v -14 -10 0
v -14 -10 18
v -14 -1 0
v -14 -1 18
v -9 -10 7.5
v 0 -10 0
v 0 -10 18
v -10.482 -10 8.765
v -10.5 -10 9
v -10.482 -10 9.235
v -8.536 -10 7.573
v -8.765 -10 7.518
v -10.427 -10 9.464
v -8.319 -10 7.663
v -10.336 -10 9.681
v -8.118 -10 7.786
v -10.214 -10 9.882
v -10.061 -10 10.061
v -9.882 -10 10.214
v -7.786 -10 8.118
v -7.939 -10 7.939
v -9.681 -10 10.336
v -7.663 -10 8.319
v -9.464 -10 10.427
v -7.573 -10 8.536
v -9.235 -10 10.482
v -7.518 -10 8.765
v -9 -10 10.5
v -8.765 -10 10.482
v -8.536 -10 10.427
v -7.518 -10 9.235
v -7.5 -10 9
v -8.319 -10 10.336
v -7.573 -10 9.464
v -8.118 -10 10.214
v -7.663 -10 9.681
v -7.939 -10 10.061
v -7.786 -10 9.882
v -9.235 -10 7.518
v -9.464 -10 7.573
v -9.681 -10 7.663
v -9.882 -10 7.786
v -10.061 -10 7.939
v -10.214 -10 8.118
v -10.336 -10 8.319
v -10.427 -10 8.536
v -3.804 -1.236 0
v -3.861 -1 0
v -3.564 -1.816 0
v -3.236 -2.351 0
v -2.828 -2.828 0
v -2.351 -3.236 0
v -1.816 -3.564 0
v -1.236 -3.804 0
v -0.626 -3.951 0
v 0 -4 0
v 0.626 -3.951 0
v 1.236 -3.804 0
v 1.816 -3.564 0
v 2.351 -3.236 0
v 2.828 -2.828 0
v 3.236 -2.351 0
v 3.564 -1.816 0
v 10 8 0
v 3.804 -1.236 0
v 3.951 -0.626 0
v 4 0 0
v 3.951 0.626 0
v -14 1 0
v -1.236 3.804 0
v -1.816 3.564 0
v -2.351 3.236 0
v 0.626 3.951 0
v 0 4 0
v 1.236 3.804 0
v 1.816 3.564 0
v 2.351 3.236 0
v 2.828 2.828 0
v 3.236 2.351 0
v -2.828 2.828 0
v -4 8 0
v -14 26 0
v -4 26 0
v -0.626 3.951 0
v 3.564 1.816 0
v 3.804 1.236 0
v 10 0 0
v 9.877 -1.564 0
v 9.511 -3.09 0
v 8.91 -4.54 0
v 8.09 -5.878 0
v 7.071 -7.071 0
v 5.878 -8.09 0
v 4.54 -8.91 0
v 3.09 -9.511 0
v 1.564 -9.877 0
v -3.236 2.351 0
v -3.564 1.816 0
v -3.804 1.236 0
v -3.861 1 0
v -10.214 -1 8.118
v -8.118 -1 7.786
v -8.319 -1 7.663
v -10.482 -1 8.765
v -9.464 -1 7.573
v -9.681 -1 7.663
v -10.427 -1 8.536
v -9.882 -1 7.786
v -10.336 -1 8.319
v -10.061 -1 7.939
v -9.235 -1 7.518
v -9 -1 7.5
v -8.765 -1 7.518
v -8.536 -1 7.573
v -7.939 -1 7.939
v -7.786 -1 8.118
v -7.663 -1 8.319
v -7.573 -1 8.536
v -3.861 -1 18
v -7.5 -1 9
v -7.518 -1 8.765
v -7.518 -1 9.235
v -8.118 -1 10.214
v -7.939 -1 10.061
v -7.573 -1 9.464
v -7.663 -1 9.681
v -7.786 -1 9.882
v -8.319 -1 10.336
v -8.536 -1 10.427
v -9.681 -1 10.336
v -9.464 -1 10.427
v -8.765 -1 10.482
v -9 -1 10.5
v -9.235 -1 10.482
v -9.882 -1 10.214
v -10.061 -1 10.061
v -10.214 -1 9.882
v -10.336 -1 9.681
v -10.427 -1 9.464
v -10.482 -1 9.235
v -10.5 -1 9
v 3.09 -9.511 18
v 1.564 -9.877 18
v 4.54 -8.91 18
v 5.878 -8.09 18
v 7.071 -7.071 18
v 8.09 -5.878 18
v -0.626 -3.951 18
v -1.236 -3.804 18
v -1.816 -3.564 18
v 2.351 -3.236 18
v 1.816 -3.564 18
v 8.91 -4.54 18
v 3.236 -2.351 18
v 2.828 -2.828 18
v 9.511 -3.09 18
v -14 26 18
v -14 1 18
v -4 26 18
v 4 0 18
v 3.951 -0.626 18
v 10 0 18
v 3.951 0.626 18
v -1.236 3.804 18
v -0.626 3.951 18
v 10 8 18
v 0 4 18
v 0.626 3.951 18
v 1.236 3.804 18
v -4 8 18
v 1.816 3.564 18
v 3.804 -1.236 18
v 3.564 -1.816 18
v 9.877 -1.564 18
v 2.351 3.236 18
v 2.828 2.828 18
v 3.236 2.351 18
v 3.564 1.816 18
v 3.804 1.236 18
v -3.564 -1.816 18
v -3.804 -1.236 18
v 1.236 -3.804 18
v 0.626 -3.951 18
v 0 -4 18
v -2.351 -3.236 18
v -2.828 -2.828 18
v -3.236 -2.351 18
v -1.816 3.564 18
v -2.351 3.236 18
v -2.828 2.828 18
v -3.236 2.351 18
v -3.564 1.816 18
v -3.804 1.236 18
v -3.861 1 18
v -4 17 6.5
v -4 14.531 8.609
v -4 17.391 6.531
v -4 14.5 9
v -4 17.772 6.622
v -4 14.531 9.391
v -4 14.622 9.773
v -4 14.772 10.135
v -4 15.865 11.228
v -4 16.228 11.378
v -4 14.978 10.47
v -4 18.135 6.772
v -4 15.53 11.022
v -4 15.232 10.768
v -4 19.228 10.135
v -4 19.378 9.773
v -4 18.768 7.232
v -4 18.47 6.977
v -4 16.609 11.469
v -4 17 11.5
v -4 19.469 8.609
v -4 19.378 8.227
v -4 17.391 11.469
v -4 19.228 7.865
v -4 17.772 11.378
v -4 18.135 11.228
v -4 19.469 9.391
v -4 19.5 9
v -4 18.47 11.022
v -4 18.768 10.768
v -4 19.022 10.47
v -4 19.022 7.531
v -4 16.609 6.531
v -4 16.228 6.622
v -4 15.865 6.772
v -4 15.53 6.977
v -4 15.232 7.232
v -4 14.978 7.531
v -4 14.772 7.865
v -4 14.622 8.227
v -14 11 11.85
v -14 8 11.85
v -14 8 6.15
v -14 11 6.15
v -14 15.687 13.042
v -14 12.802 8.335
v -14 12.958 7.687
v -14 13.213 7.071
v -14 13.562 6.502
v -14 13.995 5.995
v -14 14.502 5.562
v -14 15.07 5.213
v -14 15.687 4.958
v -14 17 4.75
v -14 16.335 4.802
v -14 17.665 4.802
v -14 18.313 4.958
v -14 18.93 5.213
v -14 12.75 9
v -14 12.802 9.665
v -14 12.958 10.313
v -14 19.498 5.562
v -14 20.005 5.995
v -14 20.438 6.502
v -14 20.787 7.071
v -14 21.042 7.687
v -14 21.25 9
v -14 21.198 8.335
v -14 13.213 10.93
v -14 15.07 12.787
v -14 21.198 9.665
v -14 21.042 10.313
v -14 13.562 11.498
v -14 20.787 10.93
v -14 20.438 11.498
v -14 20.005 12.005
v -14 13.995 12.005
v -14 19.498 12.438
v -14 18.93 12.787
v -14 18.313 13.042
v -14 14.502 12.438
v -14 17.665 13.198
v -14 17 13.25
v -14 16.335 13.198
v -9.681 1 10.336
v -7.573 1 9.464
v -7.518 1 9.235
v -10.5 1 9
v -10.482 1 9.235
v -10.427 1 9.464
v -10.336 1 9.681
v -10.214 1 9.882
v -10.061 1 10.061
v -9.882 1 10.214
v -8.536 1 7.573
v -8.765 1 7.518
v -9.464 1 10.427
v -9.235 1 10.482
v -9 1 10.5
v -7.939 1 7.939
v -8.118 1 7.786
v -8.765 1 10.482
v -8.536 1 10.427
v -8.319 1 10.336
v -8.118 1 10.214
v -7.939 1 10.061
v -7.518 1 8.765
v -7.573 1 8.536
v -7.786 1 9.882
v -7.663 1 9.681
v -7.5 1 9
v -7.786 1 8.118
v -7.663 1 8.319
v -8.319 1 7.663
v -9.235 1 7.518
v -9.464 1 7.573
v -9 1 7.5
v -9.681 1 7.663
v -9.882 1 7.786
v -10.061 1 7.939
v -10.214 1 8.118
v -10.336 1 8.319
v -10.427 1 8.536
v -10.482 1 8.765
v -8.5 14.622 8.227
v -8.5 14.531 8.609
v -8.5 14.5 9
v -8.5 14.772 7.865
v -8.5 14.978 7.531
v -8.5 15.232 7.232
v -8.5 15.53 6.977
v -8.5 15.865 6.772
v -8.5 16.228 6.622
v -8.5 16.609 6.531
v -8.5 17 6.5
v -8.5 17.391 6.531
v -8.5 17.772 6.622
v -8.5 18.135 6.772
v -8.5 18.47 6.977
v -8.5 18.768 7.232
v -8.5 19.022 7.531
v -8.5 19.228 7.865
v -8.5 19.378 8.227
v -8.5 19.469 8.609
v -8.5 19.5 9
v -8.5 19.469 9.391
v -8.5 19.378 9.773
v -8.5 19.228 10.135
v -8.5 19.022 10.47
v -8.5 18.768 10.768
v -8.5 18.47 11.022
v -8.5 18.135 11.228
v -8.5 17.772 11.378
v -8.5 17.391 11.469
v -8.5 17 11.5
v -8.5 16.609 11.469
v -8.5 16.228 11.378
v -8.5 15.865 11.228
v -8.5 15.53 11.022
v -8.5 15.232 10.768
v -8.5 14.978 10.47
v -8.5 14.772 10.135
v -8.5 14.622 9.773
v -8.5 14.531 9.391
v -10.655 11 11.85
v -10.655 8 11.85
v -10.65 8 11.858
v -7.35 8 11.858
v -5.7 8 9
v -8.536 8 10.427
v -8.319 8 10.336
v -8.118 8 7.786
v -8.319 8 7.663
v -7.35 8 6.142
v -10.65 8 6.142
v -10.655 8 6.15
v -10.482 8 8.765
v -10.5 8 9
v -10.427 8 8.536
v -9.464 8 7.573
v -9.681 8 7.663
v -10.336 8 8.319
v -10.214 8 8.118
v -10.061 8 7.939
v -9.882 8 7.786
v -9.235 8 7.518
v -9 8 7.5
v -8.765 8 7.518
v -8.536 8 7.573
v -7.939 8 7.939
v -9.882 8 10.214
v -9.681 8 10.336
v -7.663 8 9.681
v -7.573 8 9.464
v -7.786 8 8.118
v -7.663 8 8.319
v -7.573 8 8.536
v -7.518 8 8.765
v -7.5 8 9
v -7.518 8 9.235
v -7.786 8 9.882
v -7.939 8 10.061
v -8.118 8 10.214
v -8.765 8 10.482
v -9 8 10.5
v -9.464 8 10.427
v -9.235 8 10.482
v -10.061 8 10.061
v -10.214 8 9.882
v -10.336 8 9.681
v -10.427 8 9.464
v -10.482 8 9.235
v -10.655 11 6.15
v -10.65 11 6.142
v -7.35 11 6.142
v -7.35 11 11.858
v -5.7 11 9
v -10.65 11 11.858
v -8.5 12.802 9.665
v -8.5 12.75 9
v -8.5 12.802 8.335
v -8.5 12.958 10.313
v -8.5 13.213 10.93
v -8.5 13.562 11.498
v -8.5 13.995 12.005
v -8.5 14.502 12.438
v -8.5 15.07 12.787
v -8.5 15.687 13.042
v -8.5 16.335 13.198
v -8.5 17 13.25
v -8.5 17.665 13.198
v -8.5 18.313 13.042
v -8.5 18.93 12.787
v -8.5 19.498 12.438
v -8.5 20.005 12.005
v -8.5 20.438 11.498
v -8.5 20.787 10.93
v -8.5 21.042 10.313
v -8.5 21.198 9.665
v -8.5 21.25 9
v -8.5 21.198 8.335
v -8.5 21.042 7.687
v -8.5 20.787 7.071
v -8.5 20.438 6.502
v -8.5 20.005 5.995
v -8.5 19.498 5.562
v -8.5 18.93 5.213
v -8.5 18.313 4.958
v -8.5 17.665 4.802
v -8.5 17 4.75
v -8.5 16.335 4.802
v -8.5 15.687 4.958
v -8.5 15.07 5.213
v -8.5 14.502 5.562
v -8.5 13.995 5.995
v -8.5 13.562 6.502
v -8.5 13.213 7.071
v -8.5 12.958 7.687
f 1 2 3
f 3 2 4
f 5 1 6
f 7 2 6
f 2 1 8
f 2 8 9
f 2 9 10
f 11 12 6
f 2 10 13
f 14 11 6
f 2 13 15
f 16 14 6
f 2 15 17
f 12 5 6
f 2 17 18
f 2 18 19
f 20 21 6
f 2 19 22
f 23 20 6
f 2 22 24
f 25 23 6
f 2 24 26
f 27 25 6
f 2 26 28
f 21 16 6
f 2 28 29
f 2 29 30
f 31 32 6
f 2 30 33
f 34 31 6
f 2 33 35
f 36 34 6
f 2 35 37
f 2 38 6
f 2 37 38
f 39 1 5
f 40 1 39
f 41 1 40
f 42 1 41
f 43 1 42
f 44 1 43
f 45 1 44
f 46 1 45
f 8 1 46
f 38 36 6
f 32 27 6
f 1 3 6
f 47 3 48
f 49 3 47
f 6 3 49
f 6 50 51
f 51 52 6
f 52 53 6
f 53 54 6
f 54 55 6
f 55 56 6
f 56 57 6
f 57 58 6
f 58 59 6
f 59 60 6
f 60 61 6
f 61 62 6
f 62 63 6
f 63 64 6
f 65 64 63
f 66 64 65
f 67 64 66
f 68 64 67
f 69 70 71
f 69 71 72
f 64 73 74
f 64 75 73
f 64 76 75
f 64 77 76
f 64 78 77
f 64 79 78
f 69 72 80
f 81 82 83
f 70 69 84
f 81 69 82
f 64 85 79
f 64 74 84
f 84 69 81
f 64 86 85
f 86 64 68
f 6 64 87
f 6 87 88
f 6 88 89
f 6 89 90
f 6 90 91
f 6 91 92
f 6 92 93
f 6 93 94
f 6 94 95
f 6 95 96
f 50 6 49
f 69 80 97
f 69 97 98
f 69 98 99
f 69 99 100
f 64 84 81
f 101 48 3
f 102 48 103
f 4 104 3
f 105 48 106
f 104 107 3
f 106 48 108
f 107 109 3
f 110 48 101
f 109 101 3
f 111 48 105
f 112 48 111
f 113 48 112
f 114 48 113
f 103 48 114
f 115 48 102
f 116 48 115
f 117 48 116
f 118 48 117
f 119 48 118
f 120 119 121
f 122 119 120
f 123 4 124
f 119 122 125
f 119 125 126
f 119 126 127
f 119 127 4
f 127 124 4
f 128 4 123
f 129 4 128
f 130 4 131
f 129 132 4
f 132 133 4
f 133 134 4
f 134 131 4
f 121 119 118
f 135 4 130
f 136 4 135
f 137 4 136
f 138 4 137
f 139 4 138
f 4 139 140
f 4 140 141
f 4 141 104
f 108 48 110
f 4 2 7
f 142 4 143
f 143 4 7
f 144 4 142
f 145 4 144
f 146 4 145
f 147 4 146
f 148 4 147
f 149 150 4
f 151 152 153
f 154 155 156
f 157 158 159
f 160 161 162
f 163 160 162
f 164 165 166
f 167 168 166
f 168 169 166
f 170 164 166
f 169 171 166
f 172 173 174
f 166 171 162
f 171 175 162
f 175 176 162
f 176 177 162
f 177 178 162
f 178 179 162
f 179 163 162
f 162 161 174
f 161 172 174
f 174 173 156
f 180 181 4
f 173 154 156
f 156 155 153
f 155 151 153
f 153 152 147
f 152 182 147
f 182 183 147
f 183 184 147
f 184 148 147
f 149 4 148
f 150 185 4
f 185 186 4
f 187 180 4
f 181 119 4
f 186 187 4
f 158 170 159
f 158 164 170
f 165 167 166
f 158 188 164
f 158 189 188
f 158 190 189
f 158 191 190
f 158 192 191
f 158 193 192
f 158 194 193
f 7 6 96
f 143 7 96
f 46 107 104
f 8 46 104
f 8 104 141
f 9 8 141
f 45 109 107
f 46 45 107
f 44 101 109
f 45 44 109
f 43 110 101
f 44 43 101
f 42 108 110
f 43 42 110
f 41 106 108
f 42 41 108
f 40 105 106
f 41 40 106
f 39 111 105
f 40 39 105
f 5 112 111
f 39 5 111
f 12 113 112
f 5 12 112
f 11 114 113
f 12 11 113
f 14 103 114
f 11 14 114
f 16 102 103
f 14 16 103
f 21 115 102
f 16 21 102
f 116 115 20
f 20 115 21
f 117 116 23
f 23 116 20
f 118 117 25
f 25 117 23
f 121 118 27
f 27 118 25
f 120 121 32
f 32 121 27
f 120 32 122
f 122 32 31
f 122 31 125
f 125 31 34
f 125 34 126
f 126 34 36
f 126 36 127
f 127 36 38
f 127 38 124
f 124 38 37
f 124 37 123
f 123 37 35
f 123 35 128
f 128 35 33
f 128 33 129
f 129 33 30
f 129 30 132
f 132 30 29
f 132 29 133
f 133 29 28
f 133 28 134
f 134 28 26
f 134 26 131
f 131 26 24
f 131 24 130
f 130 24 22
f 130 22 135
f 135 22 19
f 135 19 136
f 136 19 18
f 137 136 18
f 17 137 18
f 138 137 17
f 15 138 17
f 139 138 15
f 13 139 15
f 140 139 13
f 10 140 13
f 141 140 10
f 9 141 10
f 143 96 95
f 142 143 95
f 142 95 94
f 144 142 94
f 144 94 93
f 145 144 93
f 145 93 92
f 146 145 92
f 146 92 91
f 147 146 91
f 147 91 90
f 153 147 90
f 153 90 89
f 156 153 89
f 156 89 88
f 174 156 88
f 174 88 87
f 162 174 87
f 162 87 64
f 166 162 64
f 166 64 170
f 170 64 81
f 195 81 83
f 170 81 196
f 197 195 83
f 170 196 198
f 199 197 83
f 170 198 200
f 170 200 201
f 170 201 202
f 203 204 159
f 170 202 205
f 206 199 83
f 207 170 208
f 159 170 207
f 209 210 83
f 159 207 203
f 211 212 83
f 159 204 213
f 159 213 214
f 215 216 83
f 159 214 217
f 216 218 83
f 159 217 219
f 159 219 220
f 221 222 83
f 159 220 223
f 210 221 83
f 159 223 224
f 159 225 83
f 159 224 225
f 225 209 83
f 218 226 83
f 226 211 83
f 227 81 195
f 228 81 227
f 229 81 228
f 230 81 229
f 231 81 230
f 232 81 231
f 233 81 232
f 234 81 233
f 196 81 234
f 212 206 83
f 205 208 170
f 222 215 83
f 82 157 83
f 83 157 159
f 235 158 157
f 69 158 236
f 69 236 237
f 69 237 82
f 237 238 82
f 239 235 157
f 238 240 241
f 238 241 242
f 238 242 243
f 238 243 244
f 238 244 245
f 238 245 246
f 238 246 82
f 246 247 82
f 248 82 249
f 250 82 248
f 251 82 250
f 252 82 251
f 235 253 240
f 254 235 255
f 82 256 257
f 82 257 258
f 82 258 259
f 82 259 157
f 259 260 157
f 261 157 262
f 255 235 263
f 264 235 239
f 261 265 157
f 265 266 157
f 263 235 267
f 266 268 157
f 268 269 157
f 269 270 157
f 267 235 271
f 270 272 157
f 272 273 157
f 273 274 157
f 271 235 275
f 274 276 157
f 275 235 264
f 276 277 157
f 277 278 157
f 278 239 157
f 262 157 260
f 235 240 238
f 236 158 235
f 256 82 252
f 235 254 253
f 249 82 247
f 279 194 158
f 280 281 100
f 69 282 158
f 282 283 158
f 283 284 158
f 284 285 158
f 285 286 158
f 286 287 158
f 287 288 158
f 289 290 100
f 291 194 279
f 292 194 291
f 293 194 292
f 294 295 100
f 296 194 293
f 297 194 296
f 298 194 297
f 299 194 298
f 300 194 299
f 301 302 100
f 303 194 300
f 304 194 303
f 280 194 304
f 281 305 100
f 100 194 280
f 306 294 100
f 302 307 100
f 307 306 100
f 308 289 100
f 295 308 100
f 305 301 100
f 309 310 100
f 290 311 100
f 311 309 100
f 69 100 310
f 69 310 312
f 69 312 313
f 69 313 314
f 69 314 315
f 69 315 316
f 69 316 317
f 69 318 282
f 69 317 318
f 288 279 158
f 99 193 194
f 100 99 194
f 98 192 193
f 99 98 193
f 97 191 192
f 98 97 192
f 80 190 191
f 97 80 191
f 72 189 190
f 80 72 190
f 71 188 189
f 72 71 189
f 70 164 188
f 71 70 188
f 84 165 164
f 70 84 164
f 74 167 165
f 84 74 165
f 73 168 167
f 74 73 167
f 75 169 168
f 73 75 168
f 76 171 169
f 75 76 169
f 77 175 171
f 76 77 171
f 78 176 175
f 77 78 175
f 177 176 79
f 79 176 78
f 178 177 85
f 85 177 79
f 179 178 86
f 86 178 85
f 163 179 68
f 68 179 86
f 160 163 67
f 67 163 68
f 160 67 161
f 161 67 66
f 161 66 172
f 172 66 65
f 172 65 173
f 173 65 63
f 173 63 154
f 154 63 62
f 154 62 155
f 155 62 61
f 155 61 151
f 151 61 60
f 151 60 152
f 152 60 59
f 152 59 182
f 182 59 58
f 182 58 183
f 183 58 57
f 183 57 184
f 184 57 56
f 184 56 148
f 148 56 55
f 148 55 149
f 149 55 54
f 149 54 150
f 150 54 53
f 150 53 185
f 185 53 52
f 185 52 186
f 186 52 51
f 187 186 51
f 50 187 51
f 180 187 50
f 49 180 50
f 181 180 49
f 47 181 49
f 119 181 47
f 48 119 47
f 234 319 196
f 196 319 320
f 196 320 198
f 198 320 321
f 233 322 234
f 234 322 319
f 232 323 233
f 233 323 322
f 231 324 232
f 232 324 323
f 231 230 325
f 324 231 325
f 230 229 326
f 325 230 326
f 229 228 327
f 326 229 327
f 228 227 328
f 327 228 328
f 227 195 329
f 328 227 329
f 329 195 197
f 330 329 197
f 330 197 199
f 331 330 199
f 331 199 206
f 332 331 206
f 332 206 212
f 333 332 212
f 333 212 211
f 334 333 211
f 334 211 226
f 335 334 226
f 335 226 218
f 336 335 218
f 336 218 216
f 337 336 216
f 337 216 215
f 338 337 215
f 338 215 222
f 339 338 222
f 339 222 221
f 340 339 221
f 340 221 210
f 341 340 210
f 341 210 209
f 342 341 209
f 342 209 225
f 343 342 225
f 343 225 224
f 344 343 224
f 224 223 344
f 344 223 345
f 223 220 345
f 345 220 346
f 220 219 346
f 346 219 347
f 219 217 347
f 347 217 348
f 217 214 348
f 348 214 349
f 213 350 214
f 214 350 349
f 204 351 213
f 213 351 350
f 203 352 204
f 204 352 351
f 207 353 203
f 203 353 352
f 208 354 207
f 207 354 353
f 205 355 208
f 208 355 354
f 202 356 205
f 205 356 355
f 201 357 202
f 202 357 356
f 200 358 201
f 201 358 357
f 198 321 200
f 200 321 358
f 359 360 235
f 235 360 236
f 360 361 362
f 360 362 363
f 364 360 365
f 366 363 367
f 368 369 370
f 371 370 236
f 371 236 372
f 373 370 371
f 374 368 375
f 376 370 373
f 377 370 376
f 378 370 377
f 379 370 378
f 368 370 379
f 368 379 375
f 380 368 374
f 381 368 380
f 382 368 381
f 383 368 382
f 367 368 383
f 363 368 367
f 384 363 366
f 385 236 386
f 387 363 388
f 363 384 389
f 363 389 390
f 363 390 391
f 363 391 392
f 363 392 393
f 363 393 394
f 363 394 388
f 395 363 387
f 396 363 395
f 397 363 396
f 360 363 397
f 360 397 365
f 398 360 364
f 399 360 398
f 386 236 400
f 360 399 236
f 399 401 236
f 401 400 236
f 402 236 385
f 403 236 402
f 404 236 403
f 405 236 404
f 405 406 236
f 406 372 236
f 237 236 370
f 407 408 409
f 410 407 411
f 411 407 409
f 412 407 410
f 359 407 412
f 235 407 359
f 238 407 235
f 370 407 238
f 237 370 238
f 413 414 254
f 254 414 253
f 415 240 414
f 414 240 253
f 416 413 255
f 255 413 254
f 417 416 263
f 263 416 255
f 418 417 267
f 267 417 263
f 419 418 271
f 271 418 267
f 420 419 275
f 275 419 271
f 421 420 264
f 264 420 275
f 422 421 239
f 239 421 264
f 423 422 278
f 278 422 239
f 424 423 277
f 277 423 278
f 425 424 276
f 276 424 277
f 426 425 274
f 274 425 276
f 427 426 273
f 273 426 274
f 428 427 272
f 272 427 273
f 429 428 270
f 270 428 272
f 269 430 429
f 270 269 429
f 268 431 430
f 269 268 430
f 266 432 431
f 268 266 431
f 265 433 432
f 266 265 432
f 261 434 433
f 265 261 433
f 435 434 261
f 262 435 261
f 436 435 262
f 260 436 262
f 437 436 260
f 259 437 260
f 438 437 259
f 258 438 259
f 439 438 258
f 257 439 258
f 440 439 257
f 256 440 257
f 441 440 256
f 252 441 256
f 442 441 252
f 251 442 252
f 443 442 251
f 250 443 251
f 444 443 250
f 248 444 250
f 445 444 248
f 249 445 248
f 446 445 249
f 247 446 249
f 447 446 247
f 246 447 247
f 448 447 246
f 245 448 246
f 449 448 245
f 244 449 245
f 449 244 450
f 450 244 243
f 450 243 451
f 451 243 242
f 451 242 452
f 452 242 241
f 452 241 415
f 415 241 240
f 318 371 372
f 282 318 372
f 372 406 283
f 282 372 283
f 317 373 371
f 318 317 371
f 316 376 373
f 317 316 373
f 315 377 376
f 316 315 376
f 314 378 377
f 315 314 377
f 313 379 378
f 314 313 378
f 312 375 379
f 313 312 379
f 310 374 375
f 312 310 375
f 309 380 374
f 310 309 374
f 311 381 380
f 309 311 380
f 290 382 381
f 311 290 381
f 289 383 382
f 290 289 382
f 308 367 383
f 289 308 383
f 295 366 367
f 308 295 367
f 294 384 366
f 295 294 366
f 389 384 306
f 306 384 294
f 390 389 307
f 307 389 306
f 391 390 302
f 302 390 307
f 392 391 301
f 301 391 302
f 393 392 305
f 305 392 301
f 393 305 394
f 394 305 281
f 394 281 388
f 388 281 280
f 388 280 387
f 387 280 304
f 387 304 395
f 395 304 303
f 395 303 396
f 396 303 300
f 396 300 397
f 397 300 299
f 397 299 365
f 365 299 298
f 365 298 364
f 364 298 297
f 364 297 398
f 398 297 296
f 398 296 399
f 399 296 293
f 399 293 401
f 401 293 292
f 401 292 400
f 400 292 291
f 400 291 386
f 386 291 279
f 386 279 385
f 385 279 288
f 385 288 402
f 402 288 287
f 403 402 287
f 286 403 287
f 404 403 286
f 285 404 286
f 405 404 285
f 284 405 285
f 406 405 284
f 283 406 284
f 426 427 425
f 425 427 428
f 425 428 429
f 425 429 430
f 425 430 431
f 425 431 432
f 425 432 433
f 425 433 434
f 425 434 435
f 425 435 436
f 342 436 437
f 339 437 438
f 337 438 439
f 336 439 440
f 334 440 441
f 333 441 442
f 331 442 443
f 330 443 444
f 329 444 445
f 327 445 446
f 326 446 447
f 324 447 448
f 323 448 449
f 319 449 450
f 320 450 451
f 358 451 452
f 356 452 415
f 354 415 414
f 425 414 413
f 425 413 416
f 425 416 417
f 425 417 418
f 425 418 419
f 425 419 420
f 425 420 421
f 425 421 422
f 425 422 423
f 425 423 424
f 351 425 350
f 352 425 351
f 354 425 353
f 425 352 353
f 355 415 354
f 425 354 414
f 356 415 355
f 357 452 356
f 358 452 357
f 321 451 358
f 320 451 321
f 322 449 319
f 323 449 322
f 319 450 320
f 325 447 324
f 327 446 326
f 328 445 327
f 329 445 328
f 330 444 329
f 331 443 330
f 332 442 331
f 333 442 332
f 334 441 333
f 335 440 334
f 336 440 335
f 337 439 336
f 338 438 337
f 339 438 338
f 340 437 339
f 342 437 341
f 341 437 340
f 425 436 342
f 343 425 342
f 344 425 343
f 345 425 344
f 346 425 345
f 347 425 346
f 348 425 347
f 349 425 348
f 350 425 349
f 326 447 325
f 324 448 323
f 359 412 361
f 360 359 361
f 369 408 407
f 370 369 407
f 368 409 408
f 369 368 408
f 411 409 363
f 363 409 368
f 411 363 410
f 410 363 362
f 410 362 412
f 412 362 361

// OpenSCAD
$fn=40;

h1=18;
w=10;

//translate([-4,8,0])cube([60,18,h1]);
difference() {
	union() {
		cylinder(r=10,h=h1);
		translate([-w-4,0,0])
			cube([w,26,h1]);
		translate([-w-4,-10,0])
			cube([w+4,10,h1]);
			cube([10,10,h1]);
	}
	translate([0,0,-.1])cylinder(r=4,h=h1+.2);
	translate([-w-4-.1,-1,-.1])cube([w+4,2,h1+.2]);
	translate([-4,8,-.1])cube([18,18,h1+.2]);
	translate([-4-w/2,11,h1/2])rotate([90,0,0]){
		cylinder(r=1.5,h=21.1);
		cylinder(r=6.6/2,h=3,$fn=6);
		translate([-7,-2.85,0])cube([7,2.85*2,3]);
	}
	translate([-4.1-w,26-9,h1/2])rotate([0,90,0]) {
		cylinder(r=2.5,h=30.1);
		cylinder(r=4.25,h=5.6);
	}
}
